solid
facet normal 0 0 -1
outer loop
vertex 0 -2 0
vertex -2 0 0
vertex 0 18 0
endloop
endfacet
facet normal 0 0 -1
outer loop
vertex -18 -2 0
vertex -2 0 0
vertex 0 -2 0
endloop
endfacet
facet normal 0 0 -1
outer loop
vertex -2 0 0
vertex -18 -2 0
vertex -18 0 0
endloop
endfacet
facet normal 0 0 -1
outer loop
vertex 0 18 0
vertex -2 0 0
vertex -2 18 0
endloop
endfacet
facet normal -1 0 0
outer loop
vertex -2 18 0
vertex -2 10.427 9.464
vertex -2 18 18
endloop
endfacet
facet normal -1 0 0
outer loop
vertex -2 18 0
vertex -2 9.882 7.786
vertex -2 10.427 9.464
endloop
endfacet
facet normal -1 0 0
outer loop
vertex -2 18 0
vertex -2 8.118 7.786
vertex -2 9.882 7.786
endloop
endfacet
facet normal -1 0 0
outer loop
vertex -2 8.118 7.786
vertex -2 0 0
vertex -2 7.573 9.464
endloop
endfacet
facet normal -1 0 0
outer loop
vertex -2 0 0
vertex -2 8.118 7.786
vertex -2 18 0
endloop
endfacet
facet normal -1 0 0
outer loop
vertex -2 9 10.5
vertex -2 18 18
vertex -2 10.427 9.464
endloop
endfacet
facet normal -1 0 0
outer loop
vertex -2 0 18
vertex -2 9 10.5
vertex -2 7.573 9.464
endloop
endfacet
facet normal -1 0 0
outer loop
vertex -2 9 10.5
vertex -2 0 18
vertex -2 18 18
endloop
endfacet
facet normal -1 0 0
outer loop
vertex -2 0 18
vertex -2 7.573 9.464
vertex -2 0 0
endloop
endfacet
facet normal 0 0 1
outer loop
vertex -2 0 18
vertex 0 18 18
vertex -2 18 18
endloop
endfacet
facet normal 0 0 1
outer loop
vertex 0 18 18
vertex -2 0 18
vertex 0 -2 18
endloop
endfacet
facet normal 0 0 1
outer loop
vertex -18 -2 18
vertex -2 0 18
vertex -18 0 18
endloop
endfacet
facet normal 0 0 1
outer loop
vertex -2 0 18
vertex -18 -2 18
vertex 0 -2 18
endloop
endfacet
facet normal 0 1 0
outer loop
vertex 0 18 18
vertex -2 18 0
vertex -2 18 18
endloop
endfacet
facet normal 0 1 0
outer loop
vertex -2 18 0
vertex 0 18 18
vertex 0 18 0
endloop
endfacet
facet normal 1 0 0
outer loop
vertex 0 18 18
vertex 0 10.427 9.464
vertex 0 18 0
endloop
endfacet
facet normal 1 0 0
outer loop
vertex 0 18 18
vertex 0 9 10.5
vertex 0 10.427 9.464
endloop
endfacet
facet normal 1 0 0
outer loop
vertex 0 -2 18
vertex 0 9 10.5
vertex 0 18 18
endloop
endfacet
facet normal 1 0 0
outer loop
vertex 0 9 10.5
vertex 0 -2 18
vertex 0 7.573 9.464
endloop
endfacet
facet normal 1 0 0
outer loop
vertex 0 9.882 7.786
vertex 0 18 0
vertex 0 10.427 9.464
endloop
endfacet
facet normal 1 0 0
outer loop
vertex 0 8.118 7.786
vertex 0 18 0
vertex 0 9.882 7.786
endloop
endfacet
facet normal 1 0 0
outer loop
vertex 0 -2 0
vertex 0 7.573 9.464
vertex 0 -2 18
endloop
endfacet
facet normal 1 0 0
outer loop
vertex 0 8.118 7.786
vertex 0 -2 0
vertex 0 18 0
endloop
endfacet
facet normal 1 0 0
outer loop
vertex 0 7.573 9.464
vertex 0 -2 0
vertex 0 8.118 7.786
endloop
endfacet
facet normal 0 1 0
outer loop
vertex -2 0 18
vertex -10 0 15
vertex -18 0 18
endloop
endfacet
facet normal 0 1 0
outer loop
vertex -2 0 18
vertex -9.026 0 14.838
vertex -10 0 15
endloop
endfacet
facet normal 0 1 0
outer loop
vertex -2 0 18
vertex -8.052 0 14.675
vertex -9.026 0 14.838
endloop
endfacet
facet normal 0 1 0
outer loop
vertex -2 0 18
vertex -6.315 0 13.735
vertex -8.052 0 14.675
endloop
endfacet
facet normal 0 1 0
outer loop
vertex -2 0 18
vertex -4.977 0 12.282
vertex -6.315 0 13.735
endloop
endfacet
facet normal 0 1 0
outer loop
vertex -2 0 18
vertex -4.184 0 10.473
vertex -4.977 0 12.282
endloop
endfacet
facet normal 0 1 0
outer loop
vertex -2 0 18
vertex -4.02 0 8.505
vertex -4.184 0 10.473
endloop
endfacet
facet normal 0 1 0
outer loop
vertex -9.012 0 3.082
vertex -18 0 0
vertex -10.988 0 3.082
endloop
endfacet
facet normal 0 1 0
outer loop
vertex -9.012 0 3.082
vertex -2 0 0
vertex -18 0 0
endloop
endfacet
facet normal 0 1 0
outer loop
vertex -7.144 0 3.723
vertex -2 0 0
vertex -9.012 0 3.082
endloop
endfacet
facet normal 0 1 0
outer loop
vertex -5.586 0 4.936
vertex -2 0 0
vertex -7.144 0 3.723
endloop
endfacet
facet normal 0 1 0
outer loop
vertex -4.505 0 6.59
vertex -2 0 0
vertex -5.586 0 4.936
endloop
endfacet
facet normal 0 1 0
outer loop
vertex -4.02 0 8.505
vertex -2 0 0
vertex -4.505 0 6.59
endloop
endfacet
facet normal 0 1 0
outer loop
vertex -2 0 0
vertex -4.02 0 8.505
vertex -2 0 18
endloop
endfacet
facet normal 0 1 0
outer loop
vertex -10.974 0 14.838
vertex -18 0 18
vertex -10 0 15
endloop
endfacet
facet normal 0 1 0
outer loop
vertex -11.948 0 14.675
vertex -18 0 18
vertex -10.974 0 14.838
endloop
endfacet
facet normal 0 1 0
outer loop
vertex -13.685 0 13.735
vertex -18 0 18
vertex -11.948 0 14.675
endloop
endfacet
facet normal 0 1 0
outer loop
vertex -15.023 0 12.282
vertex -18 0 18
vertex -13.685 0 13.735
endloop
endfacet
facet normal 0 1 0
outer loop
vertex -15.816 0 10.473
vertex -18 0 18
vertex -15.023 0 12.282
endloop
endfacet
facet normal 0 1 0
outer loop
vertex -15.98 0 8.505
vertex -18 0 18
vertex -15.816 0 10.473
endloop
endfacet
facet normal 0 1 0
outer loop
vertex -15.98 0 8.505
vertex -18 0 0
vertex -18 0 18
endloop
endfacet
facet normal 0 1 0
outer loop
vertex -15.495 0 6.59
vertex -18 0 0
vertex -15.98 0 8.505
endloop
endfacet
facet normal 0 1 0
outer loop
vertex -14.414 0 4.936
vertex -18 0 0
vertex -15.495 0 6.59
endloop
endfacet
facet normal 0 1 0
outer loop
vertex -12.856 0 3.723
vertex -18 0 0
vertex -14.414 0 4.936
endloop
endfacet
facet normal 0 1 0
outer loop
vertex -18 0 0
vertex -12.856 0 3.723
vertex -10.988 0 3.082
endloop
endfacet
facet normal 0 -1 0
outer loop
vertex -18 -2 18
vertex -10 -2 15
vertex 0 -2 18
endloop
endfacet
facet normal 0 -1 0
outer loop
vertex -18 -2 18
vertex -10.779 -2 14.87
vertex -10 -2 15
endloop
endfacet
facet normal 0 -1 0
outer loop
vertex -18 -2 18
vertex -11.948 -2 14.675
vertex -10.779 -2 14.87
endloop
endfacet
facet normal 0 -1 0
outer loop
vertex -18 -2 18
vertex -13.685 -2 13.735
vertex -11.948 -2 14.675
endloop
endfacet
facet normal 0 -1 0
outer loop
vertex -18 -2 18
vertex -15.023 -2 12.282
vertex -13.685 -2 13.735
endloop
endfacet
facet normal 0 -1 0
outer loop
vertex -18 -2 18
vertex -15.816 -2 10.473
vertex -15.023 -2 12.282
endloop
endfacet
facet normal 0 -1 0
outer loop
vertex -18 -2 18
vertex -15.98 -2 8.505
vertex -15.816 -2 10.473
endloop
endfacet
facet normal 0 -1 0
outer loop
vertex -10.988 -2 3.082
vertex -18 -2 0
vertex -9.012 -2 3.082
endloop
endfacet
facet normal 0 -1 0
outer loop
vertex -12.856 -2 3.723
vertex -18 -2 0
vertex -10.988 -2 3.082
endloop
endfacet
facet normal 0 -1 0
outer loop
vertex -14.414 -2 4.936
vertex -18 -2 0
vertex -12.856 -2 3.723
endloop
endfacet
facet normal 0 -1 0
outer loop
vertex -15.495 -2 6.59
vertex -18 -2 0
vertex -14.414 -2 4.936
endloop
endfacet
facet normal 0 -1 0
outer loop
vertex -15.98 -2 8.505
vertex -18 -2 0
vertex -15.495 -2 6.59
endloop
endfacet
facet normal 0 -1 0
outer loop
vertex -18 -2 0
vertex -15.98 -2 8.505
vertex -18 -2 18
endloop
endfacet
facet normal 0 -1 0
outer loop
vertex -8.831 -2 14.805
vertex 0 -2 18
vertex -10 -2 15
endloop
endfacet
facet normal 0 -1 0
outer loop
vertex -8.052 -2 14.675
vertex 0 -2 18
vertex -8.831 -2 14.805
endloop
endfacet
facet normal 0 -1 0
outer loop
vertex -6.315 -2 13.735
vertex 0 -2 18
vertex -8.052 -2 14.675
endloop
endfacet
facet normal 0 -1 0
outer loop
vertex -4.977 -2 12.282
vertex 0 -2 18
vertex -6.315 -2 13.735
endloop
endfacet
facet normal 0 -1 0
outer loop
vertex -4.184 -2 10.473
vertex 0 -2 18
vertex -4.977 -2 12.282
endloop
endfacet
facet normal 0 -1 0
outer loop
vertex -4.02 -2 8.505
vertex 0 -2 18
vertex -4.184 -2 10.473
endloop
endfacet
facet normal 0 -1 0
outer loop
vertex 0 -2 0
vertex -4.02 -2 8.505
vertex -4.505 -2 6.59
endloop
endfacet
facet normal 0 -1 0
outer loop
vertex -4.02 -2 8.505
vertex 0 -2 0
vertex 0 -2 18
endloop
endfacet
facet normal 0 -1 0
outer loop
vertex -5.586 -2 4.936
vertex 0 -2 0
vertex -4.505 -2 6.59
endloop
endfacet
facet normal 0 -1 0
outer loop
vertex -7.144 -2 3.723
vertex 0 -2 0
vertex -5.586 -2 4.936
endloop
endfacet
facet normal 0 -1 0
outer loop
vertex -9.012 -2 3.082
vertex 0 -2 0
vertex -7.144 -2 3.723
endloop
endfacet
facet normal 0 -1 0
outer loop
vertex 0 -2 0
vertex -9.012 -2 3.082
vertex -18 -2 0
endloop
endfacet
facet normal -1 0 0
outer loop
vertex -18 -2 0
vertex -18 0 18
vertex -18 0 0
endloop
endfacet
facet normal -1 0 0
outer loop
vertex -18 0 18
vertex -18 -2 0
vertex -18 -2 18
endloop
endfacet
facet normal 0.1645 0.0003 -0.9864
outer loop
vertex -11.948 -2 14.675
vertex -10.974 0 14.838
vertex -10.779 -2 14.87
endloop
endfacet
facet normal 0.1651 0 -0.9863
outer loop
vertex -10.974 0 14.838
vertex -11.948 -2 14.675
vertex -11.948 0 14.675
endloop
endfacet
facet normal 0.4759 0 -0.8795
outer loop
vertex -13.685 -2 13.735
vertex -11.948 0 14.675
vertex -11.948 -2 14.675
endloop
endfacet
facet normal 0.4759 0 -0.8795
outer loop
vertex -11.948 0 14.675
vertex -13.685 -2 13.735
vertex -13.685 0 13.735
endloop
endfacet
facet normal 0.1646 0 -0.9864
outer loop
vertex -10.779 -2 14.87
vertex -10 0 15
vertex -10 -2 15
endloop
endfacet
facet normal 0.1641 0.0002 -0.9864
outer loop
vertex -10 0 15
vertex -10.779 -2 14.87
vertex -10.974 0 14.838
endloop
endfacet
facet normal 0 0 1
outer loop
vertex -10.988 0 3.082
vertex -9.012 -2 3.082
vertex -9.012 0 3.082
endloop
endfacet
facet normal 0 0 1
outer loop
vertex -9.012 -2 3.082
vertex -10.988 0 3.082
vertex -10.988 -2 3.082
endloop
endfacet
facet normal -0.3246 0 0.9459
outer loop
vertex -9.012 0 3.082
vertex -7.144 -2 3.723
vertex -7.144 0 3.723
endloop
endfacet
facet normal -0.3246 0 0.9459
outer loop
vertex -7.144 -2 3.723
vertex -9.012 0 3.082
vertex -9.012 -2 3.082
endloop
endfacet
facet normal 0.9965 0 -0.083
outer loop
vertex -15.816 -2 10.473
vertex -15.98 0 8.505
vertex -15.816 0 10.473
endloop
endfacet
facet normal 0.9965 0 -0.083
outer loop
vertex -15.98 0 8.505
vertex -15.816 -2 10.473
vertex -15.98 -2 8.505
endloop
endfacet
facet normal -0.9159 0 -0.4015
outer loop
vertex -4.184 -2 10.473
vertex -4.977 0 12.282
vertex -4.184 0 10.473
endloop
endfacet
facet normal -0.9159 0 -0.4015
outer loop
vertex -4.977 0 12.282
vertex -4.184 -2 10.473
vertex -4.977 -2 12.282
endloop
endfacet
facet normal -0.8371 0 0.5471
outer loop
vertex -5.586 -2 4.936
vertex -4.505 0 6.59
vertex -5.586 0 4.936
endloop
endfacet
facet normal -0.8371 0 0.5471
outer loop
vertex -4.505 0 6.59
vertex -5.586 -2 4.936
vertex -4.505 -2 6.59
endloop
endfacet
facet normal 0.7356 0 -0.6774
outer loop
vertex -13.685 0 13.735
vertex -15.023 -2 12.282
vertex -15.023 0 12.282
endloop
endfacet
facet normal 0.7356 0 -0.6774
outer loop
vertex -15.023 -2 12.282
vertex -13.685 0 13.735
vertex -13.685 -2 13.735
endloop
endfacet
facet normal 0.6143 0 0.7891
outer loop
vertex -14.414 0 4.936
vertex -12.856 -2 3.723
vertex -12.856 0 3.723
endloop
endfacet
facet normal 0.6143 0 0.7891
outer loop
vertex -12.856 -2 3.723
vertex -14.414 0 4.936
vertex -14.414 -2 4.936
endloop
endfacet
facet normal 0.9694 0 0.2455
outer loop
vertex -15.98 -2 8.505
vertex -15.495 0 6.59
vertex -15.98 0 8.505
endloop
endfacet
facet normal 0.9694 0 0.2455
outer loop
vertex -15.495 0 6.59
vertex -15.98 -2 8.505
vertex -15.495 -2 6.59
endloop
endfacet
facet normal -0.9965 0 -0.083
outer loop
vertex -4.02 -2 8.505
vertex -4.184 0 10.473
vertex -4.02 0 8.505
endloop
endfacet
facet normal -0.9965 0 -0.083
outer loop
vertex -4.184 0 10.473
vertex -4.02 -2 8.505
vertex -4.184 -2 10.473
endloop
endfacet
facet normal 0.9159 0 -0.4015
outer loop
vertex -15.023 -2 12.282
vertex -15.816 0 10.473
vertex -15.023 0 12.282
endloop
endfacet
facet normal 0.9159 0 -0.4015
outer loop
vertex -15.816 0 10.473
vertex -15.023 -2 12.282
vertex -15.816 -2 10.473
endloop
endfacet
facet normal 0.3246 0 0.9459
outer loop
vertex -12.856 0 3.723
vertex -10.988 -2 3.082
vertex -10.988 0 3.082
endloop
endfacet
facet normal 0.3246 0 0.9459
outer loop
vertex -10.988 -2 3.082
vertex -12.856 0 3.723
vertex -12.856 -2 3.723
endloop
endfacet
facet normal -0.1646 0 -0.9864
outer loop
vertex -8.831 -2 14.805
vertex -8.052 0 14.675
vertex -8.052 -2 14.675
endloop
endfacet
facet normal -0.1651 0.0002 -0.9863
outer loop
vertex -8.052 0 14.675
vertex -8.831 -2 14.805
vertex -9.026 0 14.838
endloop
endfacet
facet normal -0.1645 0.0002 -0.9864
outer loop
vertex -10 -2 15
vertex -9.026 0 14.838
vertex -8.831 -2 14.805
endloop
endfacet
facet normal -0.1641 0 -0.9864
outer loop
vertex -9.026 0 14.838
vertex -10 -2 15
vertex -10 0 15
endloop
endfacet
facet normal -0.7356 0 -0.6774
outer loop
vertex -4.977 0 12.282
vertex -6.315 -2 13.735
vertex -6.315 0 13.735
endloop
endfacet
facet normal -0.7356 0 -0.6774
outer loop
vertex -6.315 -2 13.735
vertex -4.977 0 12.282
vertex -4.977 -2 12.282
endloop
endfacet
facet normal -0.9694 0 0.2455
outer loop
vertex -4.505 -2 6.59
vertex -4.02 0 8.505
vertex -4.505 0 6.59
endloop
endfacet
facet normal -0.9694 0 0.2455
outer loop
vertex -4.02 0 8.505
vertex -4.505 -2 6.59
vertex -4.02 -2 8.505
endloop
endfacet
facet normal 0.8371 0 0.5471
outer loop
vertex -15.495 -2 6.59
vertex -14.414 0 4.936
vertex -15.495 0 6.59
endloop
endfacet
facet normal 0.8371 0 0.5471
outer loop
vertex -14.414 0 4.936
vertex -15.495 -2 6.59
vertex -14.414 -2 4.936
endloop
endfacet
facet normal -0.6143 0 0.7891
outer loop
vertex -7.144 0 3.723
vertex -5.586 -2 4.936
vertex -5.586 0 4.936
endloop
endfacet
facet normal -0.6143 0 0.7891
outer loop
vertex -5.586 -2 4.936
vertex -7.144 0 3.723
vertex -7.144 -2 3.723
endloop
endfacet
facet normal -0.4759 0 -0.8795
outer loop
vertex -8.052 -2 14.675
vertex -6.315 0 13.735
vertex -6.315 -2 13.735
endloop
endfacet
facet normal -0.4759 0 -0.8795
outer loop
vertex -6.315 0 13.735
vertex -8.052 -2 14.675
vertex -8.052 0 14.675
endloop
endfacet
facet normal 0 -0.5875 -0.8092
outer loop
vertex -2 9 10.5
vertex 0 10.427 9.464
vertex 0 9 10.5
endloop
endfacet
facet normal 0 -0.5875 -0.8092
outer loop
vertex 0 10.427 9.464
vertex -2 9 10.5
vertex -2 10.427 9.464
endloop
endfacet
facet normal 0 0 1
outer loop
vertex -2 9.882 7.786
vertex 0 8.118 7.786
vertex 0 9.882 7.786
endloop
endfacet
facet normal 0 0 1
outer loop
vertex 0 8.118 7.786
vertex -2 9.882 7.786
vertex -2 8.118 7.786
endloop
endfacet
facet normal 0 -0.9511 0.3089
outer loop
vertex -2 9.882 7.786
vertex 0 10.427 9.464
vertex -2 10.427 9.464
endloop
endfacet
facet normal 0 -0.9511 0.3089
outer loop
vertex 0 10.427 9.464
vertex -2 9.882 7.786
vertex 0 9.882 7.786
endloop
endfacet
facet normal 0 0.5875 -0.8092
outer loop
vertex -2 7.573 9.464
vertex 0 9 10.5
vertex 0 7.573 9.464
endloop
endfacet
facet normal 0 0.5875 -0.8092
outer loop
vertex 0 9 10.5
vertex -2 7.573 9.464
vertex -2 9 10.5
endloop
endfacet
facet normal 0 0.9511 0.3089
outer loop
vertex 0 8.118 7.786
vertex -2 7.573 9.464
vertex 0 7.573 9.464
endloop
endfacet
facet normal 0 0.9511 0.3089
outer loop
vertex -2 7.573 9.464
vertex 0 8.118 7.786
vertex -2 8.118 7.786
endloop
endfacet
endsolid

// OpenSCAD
//Weather monitor and pump switch esp8266 
//simple bracket
// ?more complicated base with screws
r=6;  //2.5mm socket  ?8mm hole

b = [r+r+6,r+r+6,2]; //base
s = b + [0,0,0]; //side - same as base but a big higher


sh = [[10,10], [10,40], [50,50]];  //screw holes


module simple_bracket(){
difference(){
    union() {
        cube(b);  //base
        rotate([90,0,0]) cube(s); //side
    }
    translate([s[0]/2,0, s[1]-r-2])rotate([90,0,0])cylinder(r=r,h=20,center=true); //socket hle
    
    translate(b/2)cylinder(r=1.5,h=20,center=true); // bolt hole for base
    
}
}

module relay_holder(){
b = 1.5;
t = 2;
l = 42+3;
w = 30.5+3;
h = 5;

relay = [[0,0,h/2],[l,0,h/2],[l,w,h/2],[0,w,h/2]];

difference(){
    union(){
        for (i = relay) translate(i)cylinder(r=b+t,h=h,center=true);      
translate([0,-b-t,0])cube([l,b+b+t+t,t]);
translate([0,w-b-t,0])cube([l,b+b+t+t,t]);
translate([-b-t,0,0])cube([b+b+t+t,w,t]);
translate([l-b-t,0,0])cube([b+b+t+t,w,t]);
    }
    for (i = relay) translate(i)cylinder(r=b,h=2*h,center=true);    
    }  
}

//relay_holder();
rotate([0,-90,0])simple_bracket();
